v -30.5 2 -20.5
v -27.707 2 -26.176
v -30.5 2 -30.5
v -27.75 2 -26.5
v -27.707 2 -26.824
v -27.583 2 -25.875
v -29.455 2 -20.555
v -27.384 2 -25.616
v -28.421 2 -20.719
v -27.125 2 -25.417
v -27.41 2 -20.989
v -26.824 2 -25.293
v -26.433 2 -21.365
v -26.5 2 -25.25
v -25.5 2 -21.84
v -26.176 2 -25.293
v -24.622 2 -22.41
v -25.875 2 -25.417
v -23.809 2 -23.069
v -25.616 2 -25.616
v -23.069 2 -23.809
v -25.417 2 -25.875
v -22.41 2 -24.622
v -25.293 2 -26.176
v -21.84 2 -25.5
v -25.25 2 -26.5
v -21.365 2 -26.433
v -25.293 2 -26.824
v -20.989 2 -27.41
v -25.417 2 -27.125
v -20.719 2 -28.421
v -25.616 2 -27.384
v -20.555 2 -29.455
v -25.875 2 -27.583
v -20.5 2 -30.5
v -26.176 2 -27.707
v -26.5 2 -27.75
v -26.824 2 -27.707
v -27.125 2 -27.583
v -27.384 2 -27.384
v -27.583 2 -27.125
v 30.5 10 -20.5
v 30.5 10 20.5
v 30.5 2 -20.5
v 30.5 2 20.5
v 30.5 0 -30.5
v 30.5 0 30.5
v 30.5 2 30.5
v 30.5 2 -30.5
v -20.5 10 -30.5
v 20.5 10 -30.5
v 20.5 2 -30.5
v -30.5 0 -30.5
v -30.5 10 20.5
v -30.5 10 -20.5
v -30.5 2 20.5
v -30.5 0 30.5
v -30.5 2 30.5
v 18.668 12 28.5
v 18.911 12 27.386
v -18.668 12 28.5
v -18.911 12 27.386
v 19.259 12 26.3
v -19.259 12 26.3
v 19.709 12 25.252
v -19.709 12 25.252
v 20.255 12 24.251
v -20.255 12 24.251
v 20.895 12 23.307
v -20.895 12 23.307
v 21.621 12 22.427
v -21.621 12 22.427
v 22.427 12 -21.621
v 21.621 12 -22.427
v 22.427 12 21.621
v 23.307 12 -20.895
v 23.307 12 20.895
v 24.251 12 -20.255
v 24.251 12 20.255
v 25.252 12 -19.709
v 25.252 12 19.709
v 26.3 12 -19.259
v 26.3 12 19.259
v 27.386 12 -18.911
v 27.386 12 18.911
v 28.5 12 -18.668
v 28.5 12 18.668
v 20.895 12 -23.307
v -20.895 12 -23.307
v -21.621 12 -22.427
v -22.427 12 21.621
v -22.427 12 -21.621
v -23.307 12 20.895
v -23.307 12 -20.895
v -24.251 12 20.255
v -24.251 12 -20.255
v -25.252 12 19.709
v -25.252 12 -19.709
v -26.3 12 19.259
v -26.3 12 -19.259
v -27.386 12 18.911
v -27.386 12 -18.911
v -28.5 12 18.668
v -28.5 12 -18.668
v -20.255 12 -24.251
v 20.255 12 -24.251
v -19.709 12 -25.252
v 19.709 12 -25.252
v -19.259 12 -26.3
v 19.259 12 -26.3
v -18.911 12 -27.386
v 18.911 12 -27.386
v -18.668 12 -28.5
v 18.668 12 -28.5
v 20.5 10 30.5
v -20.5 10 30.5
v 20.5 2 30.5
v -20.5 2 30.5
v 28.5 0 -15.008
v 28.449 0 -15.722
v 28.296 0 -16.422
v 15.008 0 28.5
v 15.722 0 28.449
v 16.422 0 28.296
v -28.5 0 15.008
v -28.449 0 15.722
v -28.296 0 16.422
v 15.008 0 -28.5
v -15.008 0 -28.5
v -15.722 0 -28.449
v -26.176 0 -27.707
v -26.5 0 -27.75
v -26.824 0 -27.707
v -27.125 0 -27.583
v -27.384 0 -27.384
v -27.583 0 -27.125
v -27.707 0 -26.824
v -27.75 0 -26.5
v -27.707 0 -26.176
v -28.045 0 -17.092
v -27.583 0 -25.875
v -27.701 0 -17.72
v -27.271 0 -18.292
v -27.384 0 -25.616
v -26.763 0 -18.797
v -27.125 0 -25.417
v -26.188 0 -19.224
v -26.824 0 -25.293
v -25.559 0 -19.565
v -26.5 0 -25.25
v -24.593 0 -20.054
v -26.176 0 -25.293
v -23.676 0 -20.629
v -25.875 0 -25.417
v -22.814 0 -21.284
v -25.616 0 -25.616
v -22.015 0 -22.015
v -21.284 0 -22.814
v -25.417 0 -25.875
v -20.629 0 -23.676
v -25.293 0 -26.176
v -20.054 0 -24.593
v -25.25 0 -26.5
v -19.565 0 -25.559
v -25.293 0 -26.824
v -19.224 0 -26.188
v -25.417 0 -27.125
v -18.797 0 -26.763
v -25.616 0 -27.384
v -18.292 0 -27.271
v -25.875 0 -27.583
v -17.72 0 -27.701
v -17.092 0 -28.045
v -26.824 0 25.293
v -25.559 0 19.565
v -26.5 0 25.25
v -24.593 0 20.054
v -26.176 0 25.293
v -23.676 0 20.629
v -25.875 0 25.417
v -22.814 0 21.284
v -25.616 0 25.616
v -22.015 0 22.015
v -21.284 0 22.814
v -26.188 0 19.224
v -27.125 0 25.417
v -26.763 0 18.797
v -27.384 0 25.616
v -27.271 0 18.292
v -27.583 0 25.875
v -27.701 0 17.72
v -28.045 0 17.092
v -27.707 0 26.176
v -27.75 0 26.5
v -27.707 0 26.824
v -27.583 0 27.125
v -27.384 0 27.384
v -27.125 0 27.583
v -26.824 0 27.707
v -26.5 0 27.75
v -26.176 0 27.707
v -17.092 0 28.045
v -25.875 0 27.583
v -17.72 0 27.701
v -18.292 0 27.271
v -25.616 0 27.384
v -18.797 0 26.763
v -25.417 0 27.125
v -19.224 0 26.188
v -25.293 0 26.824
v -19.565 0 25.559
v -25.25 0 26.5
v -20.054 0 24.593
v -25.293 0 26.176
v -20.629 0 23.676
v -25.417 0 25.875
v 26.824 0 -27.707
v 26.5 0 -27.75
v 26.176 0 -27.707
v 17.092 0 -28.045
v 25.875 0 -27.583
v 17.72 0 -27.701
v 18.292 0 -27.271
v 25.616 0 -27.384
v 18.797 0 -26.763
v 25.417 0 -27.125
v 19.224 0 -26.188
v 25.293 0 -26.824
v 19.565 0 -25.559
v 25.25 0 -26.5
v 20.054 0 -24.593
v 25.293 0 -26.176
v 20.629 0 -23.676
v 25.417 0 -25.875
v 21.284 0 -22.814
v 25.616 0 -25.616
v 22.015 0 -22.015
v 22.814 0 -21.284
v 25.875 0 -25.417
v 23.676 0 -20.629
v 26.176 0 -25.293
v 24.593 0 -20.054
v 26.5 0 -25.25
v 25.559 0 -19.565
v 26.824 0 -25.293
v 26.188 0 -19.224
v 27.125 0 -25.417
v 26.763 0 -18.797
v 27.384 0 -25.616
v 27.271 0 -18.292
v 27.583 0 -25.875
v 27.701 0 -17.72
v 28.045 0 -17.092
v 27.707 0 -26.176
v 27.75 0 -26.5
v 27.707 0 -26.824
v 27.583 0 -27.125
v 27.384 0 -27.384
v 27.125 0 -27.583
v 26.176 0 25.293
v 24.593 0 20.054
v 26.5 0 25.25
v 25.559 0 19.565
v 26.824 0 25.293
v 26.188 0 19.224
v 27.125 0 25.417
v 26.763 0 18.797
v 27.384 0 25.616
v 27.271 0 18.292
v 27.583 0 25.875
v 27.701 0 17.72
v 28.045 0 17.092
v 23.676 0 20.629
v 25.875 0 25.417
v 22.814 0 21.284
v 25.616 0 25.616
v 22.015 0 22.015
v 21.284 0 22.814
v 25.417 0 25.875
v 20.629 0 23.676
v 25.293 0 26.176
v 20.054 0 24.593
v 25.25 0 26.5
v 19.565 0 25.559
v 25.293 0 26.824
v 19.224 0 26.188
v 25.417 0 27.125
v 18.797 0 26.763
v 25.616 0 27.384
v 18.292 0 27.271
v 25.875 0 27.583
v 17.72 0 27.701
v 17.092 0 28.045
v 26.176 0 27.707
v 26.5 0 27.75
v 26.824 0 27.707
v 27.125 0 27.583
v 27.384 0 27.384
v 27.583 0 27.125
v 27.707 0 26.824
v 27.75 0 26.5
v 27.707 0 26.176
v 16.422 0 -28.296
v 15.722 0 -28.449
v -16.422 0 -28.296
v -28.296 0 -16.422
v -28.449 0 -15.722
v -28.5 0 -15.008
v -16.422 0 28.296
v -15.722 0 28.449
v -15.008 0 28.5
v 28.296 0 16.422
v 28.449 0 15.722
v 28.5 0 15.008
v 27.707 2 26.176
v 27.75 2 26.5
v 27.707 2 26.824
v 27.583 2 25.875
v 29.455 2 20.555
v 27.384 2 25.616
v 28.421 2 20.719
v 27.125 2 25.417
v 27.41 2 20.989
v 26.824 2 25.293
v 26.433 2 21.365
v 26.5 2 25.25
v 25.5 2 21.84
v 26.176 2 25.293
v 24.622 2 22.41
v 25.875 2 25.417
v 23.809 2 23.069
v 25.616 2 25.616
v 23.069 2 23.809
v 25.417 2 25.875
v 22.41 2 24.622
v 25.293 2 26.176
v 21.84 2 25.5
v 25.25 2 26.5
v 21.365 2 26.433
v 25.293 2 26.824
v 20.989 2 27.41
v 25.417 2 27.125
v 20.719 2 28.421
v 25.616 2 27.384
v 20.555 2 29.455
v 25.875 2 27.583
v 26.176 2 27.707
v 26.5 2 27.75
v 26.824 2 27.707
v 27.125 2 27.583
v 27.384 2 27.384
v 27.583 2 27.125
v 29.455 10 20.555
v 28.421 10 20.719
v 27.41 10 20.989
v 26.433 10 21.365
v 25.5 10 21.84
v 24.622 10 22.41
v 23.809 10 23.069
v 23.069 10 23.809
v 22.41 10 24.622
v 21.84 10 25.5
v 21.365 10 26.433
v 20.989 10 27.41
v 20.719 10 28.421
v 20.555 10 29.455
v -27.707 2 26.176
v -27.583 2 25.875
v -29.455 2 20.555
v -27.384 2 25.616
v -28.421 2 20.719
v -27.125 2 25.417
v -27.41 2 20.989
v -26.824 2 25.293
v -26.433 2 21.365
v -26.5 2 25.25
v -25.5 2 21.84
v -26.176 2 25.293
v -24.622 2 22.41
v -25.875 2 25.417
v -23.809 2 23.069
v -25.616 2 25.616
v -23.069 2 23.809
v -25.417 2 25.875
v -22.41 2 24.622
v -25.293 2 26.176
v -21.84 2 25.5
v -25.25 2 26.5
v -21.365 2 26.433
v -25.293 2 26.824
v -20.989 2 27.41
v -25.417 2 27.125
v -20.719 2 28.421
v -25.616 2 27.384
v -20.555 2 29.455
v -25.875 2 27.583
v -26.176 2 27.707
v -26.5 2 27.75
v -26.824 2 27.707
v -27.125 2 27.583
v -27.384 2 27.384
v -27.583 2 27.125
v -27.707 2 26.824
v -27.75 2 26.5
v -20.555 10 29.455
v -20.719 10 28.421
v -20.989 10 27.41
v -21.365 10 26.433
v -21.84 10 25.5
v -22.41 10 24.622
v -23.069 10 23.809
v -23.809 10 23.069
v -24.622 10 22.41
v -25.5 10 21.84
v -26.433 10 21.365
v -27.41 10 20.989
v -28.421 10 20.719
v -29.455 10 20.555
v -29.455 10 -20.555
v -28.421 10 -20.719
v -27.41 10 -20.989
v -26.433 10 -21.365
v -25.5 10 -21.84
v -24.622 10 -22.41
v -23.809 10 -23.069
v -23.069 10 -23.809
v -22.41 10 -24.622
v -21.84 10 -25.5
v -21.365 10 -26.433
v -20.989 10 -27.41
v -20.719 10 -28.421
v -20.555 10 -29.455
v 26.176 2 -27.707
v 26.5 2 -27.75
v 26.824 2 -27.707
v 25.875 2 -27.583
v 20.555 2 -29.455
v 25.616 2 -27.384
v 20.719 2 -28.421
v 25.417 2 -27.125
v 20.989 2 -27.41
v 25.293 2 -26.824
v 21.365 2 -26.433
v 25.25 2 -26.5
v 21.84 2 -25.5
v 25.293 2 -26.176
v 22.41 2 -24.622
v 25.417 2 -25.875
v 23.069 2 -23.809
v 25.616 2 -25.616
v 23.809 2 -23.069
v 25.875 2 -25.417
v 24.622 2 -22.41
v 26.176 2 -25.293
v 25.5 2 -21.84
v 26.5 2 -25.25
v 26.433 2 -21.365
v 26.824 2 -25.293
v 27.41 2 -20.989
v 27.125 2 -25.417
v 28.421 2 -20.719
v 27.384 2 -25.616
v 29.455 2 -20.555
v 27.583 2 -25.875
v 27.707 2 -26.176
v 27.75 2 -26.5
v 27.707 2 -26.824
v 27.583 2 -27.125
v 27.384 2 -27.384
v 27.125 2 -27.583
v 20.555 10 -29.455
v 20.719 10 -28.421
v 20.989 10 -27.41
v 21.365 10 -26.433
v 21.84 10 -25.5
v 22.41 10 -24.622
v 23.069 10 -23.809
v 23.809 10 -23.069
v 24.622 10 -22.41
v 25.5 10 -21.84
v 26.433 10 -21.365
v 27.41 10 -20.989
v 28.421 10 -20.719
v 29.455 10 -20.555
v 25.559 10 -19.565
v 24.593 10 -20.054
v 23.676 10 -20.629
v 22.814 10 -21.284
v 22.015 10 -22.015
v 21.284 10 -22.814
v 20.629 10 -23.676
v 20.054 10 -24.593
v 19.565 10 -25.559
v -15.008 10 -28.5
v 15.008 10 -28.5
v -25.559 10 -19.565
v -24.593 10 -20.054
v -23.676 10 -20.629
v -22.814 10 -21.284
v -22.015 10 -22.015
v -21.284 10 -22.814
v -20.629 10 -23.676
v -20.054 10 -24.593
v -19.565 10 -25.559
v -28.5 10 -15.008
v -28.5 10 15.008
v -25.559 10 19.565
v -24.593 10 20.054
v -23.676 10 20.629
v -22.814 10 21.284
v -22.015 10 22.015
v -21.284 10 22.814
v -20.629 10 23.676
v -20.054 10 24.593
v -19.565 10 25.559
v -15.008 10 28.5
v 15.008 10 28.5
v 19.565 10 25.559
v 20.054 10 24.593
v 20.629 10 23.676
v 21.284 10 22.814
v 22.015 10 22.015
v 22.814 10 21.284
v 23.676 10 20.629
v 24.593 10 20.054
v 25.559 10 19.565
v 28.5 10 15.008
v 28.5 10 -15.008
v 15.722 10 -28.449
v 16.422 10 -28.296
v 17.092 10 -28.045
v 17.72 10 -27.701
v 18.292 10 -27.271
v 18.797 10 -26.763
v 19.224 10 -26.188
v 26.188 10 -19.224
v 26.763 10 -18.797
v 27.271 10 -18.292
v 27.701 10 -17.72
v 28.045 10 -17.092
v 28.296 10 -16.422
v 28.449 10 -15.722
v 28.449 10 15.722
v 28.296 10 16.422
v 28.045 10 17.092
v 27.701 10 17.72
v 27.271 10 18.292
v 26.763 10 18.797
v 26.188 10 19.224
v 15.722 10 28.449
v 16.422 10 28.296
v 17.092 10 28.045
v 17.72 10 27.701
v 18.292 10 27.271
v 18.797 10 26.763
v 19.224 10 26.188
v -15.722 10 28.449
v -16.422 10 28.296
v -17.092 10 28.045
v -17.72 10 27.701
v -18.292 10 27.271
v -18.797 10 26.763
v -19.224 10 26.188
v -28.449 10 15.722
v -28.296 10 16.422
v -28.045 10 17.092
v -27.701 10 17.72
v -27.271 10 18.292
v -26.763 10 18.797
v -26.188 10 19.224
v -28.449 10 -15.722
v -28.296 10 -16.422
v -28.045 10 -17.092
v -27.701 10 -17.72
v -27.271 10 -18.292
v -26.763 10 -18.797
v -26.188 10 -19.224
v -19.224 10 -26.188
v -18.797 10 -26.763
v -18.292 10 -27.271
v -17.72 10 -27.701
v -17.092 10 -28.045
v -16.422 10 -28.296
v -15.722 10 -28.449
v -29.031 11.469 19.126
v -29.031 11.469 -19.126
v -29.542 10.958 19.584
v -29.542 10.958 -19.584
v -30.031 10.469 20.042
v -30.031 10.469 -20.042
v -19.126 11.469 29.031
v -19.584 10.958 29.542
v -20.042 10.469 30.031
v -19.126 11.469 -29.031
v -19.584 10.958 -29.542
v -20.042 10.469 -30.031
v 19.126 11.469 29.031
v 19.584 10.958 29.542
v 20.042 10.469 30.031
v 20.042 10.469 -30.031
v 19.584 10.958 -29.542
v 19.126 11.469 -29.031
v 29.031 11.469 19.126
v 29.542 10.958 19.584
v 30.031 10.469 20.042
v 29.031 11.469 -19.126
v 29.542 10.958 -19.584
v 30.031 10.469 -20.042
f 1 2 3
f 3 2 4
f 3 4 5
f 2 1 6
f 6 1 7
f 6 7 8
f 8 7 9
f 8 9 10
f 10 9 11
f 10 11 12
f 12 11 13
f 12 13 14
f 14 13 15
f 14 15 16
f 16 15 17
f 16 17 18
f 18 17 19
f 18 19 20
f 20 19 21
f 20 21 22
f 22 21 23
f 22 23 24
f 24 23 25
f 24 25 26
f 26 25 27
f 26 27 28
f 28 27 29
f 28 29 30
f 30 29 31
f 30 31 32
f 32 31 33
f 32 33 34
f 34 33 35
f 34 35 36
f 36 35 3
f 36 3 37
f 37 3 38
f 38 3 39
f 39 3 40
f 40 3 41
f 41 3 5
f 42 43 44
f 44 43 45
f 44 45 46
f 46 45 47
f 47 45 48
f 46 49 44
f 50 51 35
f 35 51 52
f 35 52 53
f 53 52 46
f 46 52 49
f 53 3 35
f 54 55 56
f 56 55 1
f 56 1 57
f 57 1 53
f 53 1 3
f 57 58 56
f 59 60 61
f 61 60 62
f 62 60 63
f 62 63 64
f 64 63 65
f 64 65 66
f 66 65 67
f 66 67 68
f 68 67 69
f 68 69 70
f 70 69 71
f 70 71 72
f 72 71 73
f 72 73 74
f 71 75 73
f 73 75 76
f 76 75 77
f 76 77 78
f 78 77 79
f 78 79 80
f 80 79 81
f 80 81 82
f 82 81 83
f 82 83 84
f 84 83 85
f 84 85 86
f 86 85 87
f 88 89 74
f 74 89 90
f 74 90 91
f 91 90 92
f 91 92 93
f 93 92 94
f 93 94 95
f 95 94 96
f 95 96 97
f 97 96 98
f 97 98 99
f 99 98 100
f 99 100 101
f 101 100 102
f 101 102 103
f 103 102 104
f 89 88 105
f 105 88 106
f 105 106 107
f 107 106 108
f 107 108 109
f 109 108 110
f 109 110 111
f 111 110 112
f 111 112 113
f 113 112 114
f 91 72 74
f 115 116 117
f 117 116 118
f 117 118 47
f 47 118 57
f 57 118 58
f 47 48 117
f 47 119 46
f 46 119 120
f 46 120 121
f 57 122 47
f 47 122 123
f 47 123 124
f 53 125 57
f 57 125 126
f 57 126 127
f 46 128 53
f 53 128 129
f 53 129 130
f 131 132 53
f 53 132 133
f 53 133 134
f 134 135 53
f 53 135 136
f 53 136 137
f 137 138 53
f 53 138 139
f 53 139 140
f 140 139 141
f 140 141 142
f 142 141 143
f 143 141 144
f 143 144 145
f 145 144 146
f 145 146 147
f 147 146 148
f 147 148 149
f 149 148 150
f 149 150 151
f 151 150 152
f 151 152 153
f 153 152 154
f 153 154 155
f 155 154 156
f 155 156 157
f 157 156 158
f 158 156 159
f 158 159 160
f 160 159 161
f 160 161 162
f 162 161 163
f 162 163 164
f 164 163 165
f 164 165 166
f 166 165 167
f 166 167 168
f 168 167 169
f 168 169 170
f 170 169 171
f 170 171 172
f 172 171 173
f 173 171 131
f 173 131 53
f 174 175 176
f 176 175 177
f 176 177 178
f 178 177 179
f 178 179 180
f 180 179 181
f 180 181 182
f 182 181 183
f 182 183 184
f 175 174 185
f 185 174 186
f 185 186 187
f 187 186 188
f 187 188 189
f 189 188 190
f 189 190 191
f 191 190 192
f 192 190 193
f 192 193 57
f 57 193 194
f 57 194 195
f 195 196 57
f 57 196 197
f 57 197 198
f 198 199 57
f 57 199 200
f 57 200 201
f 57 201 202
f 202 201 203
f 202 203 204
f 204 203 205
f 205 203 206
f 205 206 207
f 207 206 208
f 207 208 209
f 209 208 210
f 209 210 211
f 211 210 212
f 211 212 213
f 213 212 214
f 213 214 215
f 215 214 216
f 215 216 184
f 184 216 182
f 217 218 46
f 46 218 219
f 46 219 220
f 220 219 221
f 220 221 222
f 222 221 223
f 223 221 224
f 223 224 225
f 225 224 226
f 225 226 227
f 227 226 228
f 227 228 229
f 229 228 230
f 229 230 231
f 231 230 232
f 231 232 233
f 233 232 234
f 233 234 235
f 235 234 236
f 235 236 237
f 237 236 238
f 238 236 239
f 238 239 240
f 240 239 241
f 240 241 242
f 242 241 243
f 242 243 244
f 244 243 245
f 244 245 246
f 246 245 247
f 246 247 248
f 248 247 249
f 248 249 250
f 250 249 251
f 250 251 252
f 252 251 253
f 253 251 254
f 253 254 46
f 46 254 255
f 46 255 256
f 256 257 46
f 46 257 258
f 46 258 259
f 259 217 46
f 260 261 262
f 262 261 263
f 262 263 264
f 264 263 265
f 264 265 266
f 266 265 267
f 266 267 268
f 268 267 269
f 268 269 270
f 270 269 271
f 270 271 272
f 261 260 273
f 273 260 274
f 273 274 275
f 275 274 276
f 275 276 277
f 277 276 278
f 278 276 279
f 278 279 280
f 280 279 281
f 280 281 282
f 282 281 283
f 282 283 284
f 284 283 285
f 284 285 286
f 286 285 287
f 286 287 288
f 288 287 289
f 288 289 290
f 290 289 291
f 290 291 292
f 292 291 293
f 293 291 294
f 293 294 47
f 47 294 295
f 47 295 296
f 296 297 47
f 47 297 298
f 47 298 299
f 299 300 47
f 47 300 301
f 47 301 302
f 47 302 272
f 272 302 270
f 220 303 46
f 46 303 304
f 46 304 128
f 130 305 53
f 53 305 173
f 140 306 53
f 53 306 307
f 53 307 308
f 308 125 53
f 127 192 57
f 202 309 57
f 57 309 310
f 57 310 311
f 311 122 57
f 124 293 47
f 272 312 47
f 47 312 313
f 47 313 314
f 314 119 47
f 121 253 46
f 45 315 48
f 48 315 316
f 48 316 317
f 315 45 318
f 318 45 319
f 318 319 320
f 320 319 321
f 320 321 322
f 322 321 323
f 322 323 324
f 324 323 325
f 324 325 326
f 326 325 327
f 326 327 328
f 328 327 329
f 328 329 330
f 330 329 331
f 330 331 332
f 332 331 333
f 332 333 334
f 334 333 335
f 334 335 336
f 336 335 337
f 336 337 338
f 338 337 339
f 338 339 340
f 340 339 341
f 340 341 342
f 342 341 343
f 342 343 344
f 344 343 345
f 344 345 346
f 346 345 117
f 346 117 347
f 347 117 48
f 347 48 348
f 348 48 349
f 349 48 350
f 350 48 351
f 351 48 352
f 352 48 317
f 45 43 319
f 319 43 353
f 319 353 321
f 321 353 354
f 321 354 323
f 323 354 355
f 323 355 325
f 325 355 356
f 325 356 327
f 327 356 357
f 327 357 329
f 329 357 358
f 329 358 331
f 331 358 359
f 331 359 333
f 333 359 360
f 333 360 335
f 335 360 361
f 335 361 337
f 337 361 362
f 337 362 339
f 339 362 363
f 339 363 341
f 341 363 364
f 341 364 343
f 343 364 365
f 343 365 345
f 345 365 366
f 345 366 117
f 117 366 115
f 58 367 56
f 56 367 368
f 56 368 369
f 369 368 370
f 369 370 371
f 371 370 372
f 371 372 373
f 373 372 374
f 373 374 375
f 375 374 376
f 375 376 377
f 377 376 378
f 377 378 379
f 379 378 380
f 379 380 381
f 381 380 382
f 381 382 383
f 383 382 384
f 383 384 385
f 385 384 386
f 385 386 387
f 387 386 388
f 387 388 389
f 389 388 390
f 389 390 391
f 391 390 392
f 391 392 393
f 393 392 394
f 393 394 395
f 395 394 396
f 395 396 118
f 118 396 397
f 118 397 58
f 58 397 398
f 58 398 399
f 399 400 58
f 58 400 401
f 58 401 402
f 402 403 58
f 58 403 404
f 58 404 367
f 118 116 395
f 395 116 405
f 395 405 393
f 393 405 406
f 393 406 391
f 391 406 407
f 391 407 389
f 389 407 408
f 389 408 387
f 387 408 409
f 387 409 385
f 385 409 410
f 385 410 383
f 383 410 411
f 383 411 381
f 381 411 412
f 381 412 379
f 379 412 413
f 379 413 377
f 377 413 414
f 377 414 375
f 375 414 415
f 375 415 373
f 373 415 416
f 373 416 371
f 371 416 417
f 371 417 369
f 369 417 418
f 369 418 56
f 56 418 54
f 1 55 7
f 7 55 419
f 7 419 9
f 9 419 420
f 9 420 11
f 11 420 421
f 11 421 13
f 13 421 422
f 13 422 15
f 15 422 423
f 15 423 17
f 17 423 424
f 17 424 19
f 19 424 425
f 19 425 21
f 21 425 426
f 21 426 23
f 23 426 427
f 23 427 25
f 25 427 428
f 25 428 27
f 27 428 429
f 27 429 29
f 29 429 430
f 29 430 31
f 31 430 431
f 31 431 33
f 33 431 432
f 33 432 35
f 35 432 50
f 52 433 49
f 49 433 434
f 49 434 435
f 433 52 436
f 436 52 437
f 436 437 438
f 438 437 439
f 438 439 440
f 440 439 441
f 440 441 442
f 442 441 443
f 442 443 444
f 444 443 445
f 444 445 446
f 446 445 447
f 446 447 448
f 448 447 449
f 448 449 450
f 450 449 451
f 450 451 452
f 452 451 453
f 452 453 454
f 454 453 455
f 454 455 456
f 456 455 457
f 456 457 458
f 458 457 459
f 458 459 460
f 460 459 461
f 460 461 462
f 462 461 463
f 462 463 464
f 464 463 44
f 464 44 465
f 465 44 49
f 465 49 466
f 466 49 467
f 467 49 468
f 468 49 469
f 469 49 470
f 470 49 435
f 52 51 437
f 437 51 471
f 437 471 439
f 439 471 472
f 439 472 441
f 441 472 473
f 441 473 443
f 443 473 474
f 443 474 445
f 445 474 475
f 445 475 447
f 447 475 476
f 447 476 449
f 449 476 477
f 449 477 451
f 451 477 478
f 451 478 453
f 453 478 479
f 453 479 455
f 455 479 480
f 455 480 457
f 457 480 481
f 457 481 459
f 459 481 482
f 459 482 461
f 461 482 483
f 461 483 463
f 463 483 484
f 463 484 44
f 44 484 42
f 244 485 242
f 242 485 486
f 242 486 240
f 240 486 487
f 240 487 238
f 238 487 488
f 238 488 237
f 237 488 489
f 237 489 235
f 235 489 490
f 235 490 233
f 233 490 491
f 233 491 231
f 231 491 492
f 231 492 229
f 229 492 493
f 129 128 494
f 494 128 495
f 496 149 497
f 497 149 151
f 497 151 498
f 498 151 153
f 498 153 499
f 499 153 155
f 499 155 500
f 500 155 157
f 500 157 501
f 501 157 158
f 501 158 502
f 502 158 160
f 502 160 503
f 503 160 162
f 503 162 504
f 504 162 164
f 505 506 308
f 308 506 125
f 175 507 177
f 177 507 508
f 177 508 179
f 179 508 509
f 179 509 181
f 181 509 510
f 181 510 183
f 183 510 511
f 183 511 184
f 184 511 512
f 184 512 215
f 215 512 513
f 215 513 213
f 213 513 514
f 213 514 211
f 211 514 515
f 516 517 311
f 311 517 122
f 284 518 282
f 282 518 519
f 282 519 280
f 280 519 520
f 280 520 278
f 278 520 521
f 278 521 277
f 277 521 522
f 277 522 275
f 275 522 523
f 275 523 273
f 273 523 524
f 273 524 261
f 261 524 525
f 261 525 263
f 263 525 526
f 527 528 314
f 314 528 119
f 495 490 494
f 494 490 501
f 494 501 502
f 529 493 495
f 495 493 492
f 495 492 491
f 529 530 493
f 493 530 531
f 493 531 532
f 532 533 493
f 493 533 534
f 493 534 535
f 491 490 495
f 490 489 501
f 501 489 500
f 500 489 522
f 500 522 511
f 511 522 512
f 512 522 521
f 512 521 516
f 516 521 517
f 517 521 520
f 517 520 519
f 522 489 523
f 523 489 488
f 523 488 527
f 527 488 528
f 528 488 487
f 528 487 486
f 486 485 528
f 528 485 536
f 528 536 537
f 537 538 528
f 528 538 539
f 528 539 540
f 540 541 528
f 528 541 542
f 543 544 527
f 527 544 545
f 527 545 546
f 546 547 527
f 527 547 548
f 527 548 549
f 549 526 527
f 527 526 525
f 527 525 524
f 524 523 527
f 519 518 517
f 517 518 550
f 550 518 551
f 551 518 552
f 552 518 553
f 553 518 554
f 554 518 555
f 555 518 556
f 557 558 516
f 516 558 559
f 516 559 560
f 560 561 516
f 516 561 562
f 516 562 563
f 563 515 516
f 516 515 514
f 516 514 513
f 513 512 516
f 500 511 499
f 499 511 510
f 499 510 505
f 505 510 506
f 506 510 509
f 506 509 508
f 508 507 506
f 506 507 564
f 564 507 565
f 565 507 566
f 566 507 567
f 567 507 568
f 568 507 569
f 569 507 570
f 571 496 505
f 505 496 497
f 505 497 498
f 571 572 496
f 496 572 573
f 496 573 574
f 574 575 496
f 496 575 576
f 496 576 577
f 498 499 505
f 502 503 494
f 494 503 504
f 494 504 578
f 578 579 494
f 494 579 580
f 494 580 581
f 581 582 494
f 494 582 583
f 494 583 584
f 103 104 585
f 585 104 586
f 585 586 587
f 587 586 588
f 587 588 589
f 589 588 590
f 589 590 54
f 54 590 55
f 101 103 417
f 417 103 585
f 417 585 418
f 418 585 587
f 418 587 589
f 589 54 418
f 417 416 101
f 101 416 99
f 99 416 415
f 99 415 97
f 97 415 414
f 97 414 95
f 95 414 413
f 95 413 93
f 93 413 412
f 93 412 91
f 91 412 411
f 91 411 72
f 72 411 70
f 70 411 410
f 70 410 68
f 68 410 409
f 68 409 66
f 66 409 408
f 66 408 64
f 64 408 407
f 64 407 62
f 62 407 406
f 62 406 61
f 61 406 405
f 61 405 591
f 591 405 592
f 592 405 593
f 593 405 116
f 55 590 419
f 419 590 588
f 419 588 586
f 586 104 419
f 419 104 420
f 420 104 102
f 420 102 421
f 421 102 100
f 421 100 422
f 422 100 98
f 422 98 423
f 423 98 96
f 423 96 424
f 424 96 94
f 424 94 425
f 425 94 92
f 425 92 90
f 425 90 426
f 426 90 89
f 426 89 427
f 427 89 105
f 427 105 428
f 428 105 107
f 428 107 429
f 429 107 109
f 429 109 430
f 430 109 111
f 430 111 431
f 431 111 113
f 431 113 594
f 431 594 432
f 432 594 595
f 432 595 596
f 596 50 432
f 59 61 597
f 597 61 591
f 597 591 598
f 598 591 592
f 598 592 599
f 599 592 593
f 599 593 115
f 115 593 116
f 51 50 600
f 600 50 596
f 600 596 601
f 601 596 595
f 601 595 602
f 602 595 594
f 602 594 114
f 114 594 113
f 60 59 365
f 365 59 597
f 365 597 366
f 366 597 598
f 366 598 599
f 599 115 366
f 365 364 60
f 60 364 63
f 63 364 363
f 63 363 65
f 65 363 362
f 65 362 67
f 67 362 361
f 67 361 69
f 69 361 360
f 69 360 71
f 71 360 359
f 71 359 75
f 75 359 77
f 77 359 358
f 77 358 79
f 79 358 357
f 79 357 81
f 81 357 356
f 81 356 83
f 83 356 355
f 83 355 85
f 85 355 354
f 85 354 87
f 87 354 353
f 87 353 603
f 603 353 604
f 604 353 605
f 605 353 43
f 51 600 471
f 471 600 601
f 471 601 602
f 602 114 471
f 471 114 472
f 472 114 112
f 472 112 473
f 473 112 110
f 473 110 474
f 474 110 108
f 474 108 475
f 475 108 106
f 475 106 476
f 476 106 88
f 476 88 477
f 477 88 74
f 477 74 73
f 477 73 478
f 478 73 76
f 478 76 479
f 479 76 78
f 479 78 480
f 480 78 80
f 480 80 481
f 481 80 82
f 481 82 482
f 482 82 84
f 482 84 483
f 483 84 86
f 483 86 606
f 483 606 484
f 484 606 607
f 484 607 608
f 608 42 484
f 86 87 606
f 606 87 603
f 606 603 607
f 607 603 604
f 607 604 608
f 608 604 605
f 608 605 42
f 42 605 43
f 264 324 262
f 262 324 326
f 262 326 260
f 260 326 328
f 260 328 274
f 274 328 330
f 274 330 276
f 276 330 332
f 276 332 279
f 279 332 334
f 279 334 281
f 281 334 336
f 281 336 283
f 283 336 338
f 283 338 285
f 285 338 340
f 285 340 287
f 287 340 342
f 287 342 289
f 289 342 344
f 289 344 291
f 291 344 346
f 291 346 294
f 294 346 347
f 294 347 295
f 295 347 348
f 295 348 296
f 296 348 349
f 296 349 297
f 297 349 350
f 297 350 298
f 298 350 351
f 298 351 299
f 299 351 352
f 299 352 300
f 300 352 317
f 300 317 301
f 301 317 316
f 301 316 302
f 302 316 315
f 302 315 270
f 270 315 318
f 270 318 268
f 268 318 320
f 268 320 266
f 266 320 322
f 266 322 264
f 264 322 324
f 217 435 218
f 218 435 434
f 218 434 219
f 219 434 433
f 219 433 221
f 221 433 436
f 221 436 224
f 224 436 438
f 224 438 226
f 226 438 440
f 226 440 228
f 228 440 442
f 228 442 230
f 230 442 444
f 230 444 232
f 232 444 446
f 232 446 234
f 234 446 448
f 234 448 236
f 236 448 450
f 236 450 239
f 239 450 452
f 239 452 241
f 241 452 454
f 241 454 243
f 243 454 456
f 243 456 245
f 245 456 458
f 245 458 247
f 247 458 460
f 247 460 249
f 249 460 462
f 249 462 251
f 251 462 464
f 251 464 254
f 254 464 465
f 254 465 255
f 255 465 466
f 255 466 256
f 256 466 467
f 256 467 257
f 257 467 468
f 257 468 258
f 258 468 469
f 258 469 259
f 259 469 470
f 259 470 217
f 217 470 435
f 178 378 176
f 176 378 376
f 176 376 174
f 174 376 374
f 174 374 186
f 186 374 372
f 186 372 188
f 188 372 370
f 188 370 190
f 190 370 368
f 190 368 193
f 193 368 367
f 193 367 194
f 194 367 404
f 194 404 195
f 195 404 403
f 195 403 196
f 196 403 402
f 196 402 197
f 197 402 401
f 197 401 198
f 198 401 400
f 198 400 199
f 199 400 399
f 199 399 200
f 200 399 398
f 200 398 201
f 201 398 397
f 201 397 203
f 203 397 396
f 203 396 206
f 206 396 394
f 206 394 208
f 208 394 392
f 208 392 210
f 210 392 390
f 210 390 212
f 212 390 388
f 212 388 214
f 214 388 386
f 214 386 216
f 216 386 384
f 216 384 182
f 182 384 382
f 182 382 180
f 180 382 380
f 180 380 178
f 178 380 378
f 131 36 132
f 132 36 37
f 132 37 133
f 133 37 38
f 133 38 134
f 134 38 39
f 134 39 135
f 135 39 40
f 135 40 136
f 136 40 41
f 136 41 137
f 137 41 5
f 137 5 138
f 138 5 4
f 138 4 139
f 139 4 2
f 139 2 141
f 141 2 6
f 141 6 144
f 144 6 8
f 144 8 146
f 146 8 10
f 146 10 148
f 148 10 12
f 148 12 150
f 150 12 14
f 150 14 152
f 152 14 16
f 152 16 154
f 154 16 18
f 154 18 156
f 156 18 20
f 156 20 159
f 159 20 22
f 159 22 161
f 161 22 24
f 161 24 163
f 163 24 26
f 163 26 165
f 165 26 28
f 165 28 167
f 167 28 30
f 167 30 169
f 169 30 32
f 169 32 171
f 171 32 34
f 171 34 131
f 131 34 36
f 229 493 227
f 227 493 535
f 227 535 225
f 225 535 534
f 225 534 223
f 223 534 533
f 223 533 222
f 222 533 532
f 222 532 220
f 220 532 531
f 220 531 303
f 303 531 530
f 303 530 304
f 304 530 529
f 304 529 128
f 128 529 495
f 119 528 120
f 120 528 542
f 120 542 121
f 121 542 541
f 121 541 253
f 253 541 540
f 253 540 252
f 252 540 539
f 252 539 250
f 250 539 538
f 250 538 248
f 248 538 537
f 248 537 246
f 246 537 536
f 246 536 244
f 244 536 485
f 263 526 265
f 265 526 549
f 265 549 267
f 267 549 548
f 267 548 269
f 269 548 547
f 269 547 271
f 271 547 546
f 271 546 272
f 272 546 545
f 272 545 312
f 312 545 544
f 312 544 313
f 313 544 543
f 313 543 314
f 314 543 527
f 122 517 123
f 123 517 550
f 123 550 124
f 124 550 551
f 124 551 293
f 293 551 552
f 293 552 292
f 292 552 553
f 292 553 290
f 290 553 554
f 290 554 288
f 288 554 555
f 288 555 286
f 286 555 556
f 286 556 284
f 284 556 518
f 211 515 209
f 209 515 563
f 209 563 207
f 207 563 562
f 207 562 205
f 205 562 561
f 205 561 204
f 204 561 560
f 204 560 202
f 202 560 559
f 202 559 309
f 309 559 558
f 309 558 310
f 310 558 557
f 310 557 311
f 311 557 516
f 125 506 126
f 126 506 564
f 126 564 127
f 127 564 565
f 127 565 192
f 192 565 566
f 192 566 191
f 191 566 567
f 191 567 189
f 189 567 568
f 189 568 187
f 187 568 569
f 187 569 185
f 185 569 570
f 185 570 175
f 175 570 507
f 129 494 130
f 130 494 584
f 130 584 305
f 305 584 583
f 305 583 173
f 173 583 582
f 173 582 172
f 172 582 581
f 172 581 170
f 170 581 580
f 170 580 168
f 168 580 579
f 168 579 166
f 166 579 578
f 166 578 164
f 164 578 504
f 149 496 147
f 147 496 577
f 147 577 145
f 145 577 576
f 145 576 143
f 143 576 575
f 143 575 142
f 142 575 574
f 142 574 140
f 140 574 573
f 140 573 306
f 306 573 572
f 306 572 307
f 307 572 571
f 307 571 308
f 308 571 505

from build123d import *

# Parameters (mm, degrees)
SKETCH2_W           = 61
SKETCH2_H           = 61
BOSS_EXTRUDE1_DEPTH = 12
SKETCH4_R           = 10
CUT_EXTRUDE3_DEPTH  = 10
CUT_EXTRUDE5_DEPTH  = 10
FILLET2_SIZE        = 2
FILLET3_R           = 5


with BuildPart() as part:
    # Sketch2 → Boss-Extrude1 (new body)
    with BuildSketch(Plane(origin=(0, 0, 0), x_dir=(1, 0, 0), z_dir=(0, 1, 0))):
        Rectangle(SKETCH2_W, SKETCH2_H)
    extrude(amount=BOSS_EXTRUDE1_DEPTH)

    # Sketch4 → Cut-Extrude3 (cut)
    with BuildSketch(Plane(origin=(0, 12, 0), x_dir=(1, 0, 0), z_dir=(0, 1, 0))):
        with Locations((30.5, -30.5)):
            Circle(SKETCH4_R)
        with Locations((-30.5, -30.5)):
            Circle(SKETCH4_R)
        with Locations((-30.5, 30.5)):
            Circle(SKETCH4_R)
        with Locations((30.5, 30.5)):
            Circle(SKETCH4_R)
    extrude(amount=-CUT_EXTRUDE3_DEPTH, mode=Mode.SUBTRACT)

    # Sketch8 → Cut-Extrude5 (cut)
    with BuildSketch(Plane.XZ):
        with BuildLine():
            Line((-18.667840434, -28.5), (18.667840434, -28.5))
            ThreePointArc((18.667840434, -28.5), (22.014718626, -22.014718626), (28.5, -18.667840434))
            Line((28.5, -18.667840434), (28.5, 18.667840434))
            ThreePointArc((28.5, 18.667840434), (22.014718626, 22.014718626), (18.667840434, 28.5))
            Line((18.667840434, 28.5), (-18.667840434, 28.5))
            ThreePointArc((-18.667840434, 28.5), (-22.014718626, 22.014718626), (-28.5, 18.667840434))
            Line((-28.5, 18.667840434), (-28.5, -18.667840434))
            ThreePointArc((-28.5, -18.667840434), (-22.014718626, -22.014718626), (-18.667840434, -28.5))
        make_face()
    extrude(amount=-CUT_EXTRUDE5_DEPTH, mode=Mode.SUBTRACT)

    # Fillet2
    fillet2_edges = [part.edges().sort_by_distance(p)[0] for p in [
        (30.5, 12, 0),
        (0, 12, -30.5),
        (-30.5, 12, 0),
        (0, 12, 30.5),
        (23.428932188, 12, -23.428932188),
        (-23.428932188, 12, -23.428932188),
        (-23.428932188, 12, 23.428932188),
        (23.428932188, 12, 23.428932188),
    ]]
    chamfer(fillet2_edges, length=FILLET2_SIZE)

    # Sketch15 → M3x0.5 Tapped Hole1 (revolve, cut)
    with BuildSketch(Plane(origin=(26.5, 2, 26.5), x_dir=(0, 0, 1), z_dir=(1, 0, 0))):
        Polygon((0, 0), (0, 8.251075774), (1.25, 7.5), (1.25, 0), align=None)
    m3x0_5_tapped_hole1 = revolve(axis=Axis((26.5, 8.35, 26.5), (0, -1, 0)), mode=Mode.SUBTRACT)

    # Mirror1: M3x0.5 Tapped Hole1 across plane
    add(m3x0_5_tapped_hole1.mirror(Plane.XY), mode=Mode.SUBTRACT)

    # Mirror2: M3x0.5 Tapped Hole1 across plane
    add(m3x0_5_tapped_hole1.mirror(Plane(origin=(0, 0, 0), x_dir=(0, 0, 1), z_dir=(1, 0, 0))), mode=Mode.SUBTRACT)

    # Mirror2 copy 1 sketch → Mirror2 copy 1 (revolve, cut)
    with BuildSketch(Plane(origin=(-26.5, 2, -26.5), x_dir=(0, 0, -1), z_dir=(-1, 0, 0))):
        Polygon((0, 0), (0, 8.251075774), (1.25, 7.5), (1.25, 0), align=None)
    revolve(axis=Axis((-26.5, 8.35, -26.5), (0, -1, 0)), mode=Mode.SUBTRACT)

    # Fillet3
    fillet3_edges = [part.edges().sort_by_distance(p)[0] for p in [
        (28.5, 5, -18.667840434),
        (18.667840434, 5, -28.5),
        (-18.667840434, 5, -28.5),
        (-28.5, 5, -18.667840434),
        (-28.5, 5, 18.667840434),
        (-18.667840434, 5, 28.5),
        (18.667840434, 5, 28.5),
        (28.5, 5, 18.667840434),
    ]]
    fillet(fillet3_edges, radius=FILLET3_R)


solid = part.part
